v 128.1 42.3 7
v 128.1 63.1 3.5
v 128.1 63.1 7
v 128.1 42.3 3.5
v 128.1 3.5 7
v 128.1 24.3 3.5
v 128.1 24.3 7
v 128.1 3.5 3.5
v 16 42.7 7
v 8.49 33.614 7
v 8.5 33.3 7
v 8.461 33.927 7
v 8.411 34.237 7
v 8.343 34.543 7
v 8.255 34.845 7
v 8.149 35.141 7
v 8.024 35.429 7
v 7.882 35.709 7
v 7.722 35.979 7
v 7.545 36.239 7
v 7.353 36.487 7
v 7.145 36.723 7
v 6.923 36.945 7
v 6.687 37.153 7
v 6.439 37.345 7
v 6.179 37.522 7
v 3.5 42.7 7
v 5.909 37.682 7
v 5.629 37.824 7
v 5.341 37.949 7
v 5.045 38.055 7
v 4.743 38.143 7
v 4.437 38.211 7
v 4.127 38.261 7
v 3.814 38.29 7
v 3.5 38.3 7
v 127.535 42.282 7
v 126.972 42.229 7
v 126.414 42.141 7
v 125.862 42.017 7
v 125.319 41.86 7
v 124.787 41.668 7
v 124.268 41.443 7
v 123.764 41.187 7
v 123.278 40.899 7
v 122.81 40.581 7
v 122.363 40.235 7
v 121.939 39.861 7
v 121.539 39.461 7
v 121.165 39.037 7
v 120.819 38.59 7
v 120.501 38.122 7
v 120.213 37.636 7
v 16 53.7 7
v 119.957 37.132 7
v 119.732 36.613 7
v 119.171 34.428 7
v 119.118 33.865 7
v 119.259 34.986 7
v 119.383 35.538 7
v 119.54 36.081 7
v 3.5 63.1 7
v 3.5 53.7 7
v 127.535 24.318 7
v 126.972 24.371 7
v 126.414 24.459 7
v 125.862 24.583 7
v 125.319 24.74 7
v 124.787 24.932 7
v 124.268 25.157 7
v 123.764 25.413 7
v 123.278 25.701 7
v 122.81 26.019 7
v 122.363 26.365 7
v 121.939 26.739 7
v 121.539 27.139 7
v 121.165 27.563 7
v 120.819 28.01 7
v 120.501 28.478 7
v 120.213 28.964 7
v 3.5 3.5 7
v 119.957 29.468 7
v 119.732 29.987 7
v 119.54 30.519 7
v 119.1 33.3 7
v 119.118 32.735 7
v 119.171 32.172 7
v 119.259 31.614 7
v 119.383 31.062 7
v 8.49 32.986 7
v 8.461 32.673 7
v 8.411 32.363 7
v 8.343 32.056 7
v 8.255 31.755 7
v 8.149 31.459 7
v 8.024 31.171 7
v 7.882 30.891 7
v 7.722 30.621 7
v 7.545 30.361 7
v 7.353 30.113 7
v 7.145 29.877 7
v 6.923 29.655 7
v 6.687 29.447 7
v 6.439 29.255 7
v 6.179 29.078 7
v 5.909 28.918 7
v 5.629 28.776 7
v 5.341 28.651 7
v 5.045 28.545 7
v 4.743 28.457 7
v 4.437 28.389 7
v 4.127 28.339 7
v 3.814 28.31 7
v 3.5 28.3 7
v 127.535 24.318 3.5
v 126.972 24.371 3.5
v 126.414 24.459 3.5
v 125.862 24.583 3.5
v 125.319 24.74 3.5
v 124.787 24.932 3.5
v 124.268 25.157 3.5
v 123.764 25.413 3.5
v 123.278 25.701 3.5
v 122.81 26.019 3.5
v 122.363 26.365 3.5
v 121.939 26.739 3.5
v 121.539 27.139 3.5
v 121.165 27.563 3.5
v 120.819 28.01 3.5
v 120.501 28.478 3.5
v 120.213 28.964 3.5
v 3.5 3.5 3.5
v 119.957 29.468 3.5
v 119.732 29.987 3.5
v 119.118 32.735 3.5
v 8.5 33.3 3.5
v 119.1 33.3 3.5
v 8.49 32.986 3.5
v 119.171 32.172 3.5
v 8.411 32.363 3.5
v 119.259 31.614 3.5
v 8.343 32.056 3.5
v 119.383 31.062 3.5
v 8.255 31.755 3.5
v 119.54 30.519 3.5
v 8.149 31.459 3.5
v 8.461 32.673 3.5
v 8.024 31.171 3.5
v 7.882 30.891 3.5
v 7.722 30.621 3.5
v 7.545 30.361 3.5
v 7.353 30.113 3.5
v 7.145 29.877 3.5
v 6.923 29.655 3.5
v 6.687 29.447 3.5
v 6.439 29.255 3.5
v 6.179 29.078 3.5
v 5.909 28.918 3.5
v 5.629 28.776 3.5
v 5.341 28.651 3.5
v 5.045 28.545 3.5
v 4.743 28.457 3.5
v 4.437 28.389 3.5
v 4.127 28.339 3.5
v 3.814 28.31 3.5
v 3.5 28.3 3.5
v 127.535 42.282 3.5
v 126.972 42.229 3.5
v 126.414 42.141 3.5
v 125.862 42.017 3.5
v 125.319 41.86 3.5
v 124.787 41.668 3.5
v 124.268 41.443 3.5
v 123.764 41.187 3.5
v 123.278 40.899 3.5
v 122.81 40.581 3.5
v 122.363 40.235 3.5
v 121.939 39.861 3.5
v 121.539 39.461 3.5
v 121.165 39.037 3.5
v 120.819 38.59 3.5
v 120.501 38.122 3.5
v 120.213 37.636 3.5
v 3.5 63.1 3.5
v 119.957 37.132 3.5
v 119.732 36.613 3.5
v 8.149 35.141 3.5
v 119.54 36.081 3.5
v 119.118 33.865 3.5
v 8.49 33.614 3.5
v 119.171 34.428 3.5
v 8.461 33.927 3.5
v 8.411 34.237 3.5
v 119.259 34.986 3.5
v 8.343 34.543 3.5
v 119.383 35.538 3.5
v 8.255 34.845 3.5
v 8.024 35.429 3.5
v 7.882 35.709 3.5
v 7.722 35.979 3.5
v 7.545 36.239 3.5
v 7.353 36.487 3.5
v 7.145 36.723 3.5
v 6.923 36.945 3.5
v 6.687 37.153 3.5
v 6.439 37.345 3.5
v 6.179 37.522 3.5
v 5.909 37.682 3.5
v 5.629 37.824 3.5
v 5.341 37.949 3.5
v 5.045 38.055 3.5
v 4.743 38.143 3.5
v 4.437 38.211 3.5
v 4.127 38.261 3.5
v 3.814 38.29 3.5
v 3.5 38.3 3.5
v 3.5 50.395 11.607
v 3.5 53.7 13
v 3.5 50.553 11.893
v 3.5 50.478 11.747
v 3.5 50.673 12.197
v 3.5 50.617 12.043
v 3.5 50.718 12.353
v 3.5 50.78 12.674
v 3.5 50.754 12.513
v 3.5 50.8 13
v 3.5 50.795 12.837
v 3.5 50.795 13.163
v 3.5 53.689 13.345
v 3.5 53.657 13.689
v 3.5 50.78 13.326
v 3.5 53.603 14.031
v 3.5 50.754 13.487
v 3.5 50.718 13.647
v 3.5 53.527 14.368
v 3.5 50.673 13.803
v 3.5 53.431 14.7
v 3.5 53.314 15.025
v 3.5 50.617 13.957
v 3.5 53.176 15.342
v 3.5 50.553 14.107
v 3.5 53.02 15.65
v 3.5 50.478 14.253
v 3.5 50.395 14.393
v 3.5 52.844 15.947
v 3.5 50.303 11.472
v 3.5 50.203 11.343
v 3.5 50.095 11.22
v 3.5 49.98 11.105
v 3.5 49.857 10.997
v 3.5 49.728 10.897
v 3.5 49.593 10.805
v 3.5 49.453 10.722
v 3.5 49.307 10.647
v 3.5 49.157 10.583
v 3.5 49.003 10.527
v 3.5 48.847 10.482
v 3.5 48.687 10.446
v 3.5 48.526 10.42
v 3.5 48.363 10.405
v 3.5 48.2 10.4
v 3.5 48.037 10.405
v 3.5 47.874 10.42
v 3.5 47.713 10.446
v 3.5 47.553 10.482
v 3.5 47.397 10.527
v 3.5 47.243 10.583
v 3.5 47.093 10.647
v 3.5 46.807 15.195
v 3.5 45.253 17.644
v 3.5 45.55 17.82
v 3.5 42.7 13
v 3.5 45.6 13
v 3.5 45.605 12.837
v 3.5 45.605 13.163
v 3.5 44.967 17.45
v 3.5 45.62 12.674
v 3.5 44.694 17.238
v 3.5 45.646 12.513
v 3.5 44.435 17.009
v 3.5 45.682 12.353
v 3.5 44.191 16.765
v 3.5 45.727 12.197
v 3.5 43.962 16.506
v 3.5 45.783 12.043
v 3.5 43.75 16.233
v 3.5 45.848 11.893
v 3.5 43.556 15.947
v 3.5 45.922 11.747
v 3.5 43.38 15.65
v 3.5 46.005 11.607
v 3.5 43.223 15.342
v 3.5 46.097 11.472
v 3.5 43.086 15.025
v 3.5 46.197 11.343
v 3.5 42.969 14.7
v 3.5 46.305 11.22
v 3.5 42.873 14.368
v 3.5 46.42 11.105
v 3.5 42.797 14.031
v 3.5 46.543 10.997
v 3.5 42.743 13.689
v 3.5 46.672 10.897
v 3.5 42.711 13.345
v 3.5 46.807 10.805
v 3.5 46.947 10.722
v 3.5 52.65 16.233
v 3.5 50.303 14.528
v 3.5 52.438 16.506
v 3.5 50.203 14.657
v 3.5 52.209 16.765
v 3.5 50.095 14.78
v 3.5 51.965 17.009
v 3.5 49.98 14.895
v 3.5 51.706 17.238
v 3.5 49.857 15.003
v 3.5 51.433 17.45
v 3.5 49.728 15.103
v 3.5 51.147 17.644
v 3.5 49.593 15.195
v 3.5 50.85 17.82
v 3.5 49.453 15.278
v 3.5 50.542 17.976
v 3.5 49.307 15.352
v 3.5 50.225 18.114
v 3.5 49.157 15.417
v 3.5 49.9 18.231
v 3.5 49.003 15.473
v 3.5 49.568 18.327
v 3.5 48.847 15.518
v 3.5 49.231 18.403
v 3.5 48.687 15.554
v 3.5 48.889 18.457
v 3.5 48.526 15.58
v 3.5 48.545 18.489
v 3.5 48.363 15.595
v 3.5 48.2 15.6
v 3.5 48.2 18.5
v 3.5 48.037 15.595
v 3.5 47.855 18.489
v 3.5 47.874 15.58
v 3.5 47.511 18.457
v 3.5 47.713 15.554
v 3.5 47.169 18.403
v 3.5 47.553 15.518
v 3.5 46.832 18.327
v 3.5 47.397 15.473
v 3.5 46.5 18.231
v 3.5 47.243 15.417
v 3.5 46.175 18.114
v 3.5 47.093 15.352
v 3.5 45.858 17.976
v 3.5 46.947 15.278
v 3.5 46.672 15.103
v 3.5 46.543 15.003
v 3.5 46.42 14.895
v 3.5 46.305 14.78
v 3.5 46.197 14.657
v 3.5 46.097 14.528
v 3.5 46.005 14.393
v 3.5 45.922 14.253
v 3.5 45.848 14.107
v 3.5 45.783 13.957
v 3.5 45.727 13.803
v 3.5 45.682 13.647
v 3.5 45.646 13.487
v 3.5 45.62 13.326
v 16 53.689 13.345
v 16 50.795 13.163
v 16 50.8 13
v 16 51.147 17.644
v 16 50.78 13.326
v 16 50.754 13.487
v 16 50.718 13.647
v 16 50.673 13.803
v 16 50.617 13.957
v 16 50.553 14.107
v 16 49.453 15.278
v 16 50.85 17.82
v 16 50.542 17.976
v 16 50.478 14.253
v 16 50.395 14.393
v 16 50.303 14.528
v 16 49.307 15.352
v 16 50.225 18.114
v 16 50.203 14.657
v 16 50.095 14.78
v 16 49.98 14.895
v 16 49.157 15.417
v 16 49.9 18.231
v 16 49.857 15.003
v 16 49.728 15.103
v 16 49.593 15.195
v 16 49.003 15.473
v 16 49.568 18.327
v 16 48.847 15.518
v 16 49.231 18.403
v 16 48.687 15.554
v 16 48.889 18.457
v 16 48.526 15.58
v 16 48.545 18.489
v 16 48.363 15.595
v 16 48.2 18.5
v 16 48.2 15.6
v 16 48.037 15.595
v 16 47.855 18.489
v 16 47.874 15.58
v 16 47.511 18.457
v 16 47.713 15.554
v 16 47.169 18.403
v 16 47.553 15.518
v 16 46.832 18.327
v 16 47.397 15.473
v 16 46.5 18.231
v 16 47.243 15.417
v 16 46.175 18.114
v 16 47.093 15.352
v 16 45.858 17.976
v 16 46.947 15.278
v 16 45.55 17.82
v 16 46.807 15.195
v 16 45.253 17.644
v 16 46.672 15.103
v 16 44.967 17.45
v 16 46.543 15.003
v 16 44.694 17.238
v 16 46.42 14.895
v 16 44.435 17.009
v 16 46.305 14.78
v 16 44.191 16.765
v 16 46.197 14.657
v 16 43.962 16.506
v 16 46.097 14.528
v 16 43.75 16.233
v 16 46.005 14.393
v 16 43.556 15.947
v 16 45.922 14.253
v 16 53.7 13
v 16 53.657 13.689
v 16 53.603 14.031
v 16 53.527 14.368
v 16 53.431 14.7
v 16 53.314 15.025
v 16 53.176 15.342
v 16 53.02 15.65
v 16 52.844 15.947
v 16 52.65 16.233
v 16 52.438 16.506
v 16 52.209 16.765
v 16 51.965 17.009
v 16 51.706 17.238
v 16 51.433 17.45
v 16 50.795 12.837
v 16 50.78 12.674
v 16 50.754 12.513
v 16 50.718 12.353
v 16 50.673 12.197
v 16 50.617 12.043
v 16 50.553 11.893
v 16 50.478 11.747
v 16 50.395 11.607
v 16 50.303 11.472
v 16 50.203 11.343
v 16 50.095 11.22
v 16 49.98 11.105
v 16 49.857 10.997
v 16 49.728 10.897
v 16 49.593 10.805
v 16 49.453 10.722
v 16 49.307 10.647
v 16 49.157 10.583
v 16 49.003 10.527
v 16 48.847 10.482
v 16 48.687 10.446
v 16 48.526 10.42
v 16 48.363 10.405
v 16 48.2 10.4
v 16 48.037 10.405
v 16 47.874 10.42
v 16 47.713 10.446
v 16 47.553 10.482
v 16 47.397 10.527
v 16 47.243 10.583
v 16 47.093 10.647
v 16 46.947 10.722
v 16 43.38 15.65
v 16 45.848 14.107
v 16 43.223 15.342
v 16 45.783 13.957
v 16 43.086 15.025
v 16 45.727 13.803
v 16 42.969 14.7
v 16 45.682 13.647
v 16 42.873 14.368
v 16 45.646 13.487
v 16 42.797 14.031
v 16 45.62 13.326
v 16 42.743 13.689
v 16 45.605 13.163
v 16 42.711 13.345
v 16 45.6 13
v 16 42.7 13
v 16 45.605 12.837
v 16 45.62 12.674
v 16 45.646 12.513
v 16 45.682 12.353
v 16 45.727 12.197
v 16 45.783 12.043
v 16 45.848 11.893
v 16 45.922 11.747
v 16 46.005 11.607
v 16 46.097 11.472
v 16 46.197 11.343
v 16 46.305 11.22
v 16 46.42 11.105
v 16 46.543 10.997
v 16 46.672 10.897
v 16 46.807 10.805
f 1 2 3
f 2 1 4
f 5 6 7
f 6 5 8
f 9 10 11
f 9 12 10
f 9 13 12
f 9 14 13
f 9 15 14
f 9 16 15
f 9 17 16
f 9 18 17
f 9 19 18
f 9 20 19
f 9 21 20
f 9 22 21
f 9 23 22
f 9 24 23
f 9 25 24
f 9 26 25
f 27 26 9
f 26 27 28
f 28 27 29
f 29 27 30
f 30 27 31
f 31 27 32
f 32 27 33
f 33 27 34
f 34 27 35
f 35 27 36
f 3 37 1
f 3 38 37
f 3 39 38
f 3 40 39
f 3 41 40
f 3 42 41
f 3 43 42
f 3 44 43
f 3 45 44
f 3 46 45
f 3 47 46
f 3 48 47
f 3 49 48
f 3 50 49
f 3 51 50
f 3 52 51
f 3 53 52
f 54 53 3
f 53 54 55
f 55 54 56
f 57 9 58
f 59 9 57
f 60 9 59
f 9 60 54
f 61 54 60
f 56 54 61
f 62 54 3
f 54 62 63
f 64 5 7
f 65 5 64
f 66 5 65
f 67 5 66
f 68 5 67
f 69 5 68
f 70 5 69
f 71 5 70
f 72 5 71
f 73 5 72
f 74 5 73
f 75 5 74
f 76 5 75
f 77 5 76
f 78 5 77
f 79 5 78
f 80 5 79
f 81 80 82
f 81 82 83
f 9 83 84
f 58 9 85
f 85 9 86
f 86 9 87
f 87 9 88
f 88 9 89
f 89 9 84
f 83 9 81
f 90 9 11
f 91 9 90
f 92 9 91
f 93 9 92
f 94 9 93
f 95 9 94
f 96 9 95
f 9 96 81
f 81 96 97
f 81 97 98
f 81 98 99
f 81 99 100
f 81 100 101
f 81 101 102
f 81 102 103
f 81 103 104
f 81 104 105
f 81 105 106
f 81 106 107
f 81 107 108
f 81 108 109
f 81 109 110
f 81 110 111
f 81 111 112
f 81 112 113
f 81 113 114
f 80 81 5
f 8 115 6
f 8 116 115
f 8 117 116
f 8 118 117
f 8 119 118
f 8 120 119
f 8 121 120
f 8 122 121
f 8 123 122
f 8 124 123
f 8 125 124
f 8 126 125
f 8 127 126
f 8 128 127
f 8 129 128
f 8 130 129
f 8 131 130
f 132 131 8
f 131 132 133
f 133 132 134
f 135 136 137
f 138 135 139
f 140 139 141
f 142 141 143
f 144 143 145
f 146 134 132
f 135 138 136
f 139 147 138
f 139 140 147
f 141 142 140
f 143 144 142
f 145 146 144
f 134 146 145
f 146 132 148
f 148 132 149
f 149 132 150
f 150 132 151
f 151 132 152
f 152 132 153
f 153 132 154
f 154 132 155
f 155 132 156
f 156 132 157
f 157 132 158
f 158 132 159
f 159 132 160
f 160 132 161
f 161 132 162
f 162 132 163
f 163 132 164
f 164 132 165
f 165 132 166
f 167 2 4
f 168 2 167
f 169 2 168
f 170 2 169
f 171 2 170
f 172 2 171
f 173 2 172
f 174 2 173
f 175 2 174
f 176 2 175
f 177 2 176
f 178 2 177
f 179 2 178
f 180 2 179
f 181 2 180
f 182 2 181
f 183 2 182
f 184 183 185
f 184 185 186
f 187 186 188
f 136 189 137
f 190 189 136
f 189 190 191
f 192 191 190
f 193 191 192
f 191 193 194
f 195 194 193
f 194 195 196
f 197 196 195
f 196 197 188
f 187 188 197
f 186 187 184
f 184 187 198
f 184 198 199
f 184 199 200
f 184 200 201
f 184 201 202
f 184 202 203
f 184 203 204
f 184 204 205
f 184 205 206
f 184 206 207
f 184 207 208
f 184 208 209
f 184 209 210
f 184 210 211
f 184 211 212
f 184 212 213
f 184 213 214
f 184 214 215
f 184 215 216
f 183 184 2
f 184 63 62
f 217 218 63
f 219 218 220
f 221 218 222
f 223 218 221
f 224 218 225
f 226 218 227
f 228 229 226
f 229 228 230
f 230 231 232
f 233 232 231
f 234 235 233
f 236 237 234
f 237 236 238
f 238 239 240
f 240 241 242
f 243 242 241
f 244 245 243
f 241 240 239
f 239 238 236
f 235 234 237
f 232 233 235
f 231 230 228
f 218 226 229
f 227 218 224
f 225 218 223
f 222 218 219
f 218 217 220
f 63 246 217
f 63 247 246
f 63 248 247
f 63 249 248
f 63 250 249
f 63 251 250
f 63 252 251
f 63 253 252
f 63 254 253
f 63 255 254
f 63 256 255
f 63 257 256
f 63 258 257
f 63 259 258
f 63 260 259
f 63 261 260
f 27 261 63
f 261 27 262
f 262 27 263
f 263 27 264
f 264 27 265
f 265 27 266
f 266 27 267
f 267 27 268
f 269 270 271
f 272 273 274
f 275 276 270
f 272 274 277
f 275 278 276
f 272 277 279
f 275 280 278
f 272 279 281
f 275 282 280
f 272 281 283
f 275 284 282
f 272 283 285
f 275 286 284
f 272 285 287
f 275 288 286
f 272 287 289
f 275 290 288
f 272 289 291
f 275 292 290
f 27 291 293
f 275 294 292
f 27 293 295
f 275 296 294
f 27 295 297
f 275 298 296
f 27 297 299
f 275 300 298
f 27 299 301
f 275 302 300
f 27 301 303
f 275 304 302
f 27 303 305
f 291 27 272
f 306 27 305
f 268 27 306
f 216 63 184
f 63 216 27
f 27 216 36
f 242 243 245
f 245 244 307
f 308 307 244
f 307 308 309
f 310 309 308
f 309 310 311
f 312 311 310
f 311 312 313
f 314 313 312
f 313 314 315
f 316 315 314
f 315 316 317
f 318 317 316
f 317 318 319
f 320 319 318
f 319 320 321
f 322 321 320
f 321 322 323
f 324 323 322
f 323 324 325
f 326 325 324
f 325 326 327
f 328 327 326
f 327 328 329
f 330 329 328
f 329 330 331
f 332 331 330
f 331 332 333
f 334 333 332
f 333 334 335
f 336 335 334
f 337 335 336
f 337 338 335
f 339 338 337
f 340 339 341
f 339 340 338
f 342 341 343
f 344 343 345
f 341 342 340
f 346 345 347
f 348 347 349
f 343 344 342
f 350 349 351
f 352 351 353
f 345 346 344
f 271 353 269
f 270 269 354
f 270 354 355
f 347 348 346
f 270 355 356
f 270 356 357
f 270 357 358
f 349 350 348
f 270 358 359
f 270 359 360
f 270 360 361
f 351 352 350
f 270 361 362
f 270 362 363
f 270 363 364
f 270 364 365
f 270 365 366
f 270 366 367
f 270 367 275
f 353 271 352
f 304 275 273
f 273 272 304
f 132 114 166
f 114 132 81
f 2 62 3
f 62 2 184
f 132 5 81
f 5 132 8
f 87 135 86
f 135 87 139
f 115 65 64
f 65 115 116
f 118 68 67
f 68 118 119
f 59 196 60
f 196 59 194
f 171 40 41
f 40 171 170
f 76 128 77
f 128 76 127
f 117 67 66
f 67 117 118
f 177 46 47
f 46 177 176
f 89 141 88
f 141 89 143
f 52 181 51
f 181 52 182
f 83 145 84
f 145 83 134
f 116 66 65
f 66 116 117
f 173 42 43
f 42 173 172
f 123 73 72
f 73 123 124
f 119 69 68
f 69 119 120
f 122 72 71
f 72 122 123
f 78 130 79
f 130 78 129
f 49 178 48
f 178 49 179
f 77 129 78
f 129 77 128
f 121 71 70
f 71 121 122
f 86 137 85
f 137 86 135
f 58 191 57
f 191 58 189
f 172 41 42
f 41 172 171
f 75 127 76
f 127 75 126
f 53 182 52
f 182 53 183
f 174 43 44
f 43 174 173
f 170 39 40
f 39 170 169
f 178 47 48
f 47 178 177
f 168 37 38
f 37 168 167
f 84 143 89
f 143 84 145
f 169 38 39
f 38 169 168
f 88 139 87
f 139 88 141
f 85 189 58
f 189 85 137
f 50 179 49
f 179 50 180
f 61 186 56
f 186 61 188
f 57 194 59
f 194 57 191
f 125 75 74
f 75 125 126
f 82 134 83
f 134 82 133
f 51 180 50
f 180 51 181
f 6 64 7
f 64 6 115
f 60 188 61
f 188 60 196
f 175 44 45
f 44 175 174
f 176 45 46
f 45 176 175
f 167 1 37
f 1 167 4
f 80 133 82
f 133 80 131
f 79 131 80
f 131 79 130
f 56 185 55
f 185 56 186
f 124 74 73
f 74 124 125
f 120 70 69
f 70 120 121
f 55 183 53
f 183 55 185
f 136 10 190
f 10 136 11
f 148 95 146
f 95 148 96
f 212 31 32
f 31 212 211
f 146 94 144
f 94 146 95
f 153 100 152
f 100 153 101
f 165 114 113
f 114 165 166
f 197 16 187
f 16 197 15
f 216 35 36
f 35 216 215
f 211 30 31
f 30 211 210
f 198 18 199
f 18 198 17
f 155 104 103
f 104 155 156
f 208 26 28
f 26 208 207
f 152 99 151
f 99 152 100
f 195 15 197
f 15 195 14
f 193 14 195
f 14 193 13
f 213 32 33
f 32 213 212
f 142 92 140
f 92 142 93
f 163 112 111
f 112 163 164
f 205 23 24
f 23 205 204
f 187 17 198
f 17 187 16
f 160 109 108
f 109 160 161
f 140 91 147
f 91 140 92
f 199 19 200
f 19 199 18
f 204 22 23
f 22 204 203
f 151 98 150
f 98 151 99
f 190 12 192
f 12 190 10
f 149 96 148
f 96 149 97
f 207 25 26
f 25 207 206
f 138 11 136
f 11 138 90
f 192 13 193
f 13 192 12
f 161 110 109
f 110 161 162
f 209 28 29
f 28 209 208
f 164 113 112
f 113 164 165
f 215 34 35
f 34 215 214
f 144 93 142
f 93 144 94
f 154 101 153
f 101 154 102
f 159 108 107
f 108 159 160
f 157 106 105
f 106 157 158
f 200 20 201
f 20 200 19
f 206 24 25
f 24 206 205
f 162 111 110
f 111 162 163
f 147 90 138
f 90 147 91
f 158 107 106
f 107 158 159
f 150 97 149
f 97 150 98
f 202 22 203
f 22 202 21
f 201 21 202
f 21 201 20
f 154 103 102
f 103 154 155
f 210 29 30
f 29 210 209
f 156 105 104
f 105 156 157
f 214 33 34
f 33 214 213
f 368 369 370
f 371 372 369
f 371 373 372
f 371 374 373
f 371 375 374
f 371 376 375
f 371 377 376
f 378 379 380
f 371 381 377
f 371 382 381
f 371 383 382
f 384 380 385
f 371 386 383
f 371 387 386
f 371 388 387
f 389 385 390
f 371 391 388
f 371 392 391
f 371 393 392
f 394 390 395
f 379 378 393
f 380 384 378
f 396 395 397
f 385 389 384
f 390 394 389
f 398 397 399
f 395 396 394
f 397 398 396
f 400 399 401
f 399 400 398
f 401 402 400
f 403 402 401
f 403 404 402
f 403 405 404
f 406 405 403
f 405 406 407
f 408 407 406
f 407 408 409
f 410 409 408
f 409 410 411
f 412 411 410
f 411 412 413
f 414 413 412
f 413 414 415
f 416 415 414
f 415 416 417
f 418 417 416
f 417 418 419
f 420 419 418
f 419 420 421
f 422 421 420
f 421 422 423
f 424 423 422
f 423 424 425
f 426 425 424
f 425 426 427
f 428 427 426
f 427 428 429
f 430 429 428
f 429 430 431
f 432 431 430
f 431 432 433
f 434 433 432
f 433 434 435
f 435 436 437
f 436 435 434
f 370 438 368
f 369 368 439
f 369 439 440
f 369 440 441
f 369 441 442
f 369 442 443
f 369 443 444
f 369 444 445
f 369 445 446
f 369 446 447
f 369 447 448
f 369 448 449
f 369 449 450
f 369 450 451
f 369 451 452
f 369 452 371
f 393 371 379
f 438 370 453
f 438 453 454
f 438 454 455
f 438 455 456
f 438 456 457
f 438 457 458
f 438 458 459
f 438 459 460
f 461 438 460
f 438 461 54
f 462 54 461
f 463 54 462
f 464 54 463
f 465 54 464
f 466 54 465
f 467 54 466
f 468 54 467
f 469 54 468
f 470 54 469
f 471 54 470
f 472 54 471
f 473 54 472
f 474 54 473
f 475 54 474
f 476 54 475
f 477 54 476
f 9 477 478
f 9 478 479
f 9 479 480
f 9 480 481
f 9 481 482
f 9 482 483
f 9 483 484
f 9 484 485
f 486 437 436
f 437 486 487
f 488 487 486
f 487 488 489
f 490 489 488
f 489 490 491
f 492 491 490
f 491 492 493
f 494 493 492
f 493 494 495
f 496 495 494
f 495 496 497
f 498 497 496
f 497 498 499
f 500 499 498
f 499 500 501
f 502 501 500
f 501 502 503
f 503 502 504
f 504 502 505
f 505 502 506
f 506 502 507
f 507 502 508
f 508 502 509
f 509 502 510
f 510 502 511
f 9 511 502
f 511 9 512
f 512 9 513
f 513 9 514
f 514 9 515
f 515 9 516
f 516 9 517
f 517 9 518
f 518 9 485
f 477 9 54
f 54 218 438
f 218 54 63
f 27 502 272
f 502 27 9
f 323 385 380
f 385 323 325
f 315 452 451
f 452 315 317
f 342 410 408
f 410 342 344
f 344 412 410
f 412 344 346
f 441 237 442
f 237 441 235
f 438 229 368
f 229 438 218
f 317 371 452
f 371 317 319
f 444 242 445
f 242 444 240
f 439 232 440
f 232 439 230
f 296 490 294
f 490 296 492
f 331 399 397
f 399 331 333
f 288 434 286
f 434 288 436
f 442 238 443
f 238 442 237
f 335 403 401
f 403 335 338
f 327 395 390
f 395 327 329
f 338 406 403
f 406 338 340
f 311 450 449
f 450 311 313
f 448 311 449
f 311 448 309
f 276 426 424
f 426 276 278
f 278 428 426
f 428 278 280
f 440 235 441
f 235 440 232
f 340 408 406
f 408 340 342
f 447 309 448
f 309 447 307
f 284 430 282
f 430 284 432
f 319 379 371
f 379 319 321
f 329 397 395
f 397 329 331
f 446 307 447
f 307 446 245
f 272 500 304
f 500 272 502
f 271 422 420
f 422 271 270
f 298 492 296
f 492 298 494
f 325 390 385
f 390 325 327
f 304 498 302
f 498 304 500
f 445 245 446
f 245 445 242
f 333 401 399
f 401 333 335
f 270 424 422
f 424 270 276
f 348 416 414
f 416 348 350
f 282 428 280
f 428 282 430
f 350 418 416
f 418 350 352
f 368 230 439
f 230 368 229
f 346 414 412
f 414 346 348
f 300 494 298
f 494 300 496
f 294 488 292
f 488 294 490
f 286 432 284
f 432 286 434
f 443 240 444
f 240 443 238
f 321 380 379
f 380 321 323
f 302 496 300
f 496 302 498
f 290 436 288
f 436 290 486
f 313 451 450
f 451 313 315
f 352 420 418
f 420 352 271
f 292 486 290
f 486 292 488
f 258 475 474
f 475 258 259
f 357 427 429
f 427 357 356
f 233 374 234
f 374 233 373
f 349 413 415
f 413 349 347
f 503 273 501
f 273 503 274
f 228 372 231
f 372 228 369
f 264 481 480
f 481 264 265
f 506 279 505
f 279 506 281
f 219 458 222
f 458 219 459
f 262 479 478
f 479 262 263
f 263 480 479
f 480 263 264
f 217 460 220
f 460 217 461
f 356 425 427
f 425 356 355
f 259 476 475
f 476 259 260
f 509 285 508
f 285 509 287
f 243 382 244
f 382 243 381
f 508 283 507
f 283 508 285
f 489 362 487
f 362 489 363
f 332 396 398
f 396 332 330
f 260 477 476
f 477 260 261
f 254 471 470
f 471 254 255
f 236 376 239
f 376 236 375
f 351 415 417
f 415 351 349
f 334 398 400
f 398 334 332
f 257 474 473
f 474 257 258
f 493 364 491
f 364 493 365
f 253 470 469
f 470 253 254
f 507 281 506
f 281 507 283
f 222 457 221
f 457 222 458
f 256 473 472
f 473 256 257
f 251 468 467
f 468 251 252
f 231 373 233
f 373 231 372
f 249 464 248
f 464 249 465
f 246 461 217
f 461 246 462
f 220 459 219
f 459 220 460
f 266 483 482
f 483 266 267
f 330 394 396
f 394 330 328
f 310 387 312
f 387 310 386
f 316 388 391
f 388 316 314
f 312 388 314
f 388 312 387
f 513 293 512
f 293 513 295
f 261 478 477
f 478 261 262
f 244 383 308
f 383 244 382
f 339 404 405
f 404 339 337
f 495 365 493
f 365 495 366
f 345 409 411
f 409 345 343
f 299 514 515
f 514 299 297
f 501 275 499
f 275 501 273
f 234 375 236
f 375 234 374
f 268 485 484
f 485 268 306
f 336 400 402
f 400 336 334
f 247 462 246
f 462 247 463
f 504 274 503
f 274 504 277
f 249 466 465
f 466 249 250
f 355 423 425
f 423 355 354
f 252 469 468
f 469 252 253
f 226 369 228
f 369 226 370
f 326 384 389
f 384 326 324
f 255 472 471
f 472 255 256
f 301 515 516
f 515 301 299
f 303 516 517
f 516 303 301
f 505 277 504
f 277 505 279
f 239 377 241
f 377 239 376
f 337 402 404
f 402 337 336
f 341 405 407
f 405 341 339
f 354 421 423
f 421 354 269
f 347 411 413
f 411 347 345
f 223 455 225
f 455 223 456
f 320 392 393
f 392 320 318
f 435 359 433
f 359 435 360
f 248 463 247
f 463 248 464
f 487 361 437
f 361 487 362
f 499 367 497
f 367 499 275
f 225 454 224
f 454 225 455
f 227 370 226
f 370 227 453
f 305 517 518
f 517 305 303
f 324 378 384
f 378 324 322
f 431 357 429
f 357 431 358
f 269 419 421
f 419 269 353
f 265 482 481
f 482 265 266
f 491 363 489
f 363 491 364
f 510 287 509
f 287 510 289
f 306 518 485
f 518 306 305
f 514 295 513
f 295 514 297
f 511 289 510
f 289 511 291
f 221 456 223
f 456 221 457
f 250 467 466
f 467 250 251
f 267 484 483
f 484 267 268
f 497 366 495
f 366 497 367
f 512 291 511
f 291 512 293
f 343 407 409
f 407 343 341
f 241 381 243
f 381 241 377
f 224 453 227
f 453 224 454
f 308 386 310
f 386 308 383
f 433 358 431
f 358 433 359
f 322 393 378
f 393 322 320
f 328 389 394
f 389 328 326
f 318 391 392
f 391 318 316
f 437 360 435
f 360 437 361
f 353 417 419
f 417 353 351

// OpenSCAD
length = 60-.4;//52;
width = 125-.4;//86;
height = 32;
wall = 3.5;
o_width = width + wall + wall;
o_length = length + wall + wall;
o_height = height + wall;

resolution = 100;

$fn = resolution;

// outer box
standoff_id=3.45;
standoff_od=7;
standoff_od_wall_depth = wall-2;
standoff_width = 80.8;
standoff_length = 47.25;
//difference(){
    // main box
    //cube([o_width, o_length, o_height]);
    translate([wall, wall, 0]) {
        translate([0, 0, wall]) {
            // 9999 to take out the whole face
            difference(){
            cube([width, length, wall]);
                translate([width, length/2, 0]) {
                    cylinder(h=100, r=9);
                }
                translate([0, length/2, 0]) {
                    cylinder(h=100, r=5);
                }
                        //translate([17, 6, 0]) {

            //cube([width-27, length-12, wall]);
                        //}

            }
        }
    }
//}


//add the pin mechanism
pin_od = 11;
pin_id = 5.2;
pin_len = 16;
wall_offset = 6;
translate([wall, (3/4)*length+wall-pin_od/2, wall+wall]){
    difference() {
        union(){
            cube([pin_len-wall, pin_od, wall_offset]);
            rotate([0,90,0]) {
                translate([-wall_offset,pin_od/2,0]) {
                    cylinder(h=pin_len-wall, d=pin_od);
                }
            }
        }
        rotate([0,90,0]) {
            translate([-wall_offset,pin_od/2,0]) {
                cylinder(h=pin_len-wall, d=pin_id);   
            }
        }
    }
}
